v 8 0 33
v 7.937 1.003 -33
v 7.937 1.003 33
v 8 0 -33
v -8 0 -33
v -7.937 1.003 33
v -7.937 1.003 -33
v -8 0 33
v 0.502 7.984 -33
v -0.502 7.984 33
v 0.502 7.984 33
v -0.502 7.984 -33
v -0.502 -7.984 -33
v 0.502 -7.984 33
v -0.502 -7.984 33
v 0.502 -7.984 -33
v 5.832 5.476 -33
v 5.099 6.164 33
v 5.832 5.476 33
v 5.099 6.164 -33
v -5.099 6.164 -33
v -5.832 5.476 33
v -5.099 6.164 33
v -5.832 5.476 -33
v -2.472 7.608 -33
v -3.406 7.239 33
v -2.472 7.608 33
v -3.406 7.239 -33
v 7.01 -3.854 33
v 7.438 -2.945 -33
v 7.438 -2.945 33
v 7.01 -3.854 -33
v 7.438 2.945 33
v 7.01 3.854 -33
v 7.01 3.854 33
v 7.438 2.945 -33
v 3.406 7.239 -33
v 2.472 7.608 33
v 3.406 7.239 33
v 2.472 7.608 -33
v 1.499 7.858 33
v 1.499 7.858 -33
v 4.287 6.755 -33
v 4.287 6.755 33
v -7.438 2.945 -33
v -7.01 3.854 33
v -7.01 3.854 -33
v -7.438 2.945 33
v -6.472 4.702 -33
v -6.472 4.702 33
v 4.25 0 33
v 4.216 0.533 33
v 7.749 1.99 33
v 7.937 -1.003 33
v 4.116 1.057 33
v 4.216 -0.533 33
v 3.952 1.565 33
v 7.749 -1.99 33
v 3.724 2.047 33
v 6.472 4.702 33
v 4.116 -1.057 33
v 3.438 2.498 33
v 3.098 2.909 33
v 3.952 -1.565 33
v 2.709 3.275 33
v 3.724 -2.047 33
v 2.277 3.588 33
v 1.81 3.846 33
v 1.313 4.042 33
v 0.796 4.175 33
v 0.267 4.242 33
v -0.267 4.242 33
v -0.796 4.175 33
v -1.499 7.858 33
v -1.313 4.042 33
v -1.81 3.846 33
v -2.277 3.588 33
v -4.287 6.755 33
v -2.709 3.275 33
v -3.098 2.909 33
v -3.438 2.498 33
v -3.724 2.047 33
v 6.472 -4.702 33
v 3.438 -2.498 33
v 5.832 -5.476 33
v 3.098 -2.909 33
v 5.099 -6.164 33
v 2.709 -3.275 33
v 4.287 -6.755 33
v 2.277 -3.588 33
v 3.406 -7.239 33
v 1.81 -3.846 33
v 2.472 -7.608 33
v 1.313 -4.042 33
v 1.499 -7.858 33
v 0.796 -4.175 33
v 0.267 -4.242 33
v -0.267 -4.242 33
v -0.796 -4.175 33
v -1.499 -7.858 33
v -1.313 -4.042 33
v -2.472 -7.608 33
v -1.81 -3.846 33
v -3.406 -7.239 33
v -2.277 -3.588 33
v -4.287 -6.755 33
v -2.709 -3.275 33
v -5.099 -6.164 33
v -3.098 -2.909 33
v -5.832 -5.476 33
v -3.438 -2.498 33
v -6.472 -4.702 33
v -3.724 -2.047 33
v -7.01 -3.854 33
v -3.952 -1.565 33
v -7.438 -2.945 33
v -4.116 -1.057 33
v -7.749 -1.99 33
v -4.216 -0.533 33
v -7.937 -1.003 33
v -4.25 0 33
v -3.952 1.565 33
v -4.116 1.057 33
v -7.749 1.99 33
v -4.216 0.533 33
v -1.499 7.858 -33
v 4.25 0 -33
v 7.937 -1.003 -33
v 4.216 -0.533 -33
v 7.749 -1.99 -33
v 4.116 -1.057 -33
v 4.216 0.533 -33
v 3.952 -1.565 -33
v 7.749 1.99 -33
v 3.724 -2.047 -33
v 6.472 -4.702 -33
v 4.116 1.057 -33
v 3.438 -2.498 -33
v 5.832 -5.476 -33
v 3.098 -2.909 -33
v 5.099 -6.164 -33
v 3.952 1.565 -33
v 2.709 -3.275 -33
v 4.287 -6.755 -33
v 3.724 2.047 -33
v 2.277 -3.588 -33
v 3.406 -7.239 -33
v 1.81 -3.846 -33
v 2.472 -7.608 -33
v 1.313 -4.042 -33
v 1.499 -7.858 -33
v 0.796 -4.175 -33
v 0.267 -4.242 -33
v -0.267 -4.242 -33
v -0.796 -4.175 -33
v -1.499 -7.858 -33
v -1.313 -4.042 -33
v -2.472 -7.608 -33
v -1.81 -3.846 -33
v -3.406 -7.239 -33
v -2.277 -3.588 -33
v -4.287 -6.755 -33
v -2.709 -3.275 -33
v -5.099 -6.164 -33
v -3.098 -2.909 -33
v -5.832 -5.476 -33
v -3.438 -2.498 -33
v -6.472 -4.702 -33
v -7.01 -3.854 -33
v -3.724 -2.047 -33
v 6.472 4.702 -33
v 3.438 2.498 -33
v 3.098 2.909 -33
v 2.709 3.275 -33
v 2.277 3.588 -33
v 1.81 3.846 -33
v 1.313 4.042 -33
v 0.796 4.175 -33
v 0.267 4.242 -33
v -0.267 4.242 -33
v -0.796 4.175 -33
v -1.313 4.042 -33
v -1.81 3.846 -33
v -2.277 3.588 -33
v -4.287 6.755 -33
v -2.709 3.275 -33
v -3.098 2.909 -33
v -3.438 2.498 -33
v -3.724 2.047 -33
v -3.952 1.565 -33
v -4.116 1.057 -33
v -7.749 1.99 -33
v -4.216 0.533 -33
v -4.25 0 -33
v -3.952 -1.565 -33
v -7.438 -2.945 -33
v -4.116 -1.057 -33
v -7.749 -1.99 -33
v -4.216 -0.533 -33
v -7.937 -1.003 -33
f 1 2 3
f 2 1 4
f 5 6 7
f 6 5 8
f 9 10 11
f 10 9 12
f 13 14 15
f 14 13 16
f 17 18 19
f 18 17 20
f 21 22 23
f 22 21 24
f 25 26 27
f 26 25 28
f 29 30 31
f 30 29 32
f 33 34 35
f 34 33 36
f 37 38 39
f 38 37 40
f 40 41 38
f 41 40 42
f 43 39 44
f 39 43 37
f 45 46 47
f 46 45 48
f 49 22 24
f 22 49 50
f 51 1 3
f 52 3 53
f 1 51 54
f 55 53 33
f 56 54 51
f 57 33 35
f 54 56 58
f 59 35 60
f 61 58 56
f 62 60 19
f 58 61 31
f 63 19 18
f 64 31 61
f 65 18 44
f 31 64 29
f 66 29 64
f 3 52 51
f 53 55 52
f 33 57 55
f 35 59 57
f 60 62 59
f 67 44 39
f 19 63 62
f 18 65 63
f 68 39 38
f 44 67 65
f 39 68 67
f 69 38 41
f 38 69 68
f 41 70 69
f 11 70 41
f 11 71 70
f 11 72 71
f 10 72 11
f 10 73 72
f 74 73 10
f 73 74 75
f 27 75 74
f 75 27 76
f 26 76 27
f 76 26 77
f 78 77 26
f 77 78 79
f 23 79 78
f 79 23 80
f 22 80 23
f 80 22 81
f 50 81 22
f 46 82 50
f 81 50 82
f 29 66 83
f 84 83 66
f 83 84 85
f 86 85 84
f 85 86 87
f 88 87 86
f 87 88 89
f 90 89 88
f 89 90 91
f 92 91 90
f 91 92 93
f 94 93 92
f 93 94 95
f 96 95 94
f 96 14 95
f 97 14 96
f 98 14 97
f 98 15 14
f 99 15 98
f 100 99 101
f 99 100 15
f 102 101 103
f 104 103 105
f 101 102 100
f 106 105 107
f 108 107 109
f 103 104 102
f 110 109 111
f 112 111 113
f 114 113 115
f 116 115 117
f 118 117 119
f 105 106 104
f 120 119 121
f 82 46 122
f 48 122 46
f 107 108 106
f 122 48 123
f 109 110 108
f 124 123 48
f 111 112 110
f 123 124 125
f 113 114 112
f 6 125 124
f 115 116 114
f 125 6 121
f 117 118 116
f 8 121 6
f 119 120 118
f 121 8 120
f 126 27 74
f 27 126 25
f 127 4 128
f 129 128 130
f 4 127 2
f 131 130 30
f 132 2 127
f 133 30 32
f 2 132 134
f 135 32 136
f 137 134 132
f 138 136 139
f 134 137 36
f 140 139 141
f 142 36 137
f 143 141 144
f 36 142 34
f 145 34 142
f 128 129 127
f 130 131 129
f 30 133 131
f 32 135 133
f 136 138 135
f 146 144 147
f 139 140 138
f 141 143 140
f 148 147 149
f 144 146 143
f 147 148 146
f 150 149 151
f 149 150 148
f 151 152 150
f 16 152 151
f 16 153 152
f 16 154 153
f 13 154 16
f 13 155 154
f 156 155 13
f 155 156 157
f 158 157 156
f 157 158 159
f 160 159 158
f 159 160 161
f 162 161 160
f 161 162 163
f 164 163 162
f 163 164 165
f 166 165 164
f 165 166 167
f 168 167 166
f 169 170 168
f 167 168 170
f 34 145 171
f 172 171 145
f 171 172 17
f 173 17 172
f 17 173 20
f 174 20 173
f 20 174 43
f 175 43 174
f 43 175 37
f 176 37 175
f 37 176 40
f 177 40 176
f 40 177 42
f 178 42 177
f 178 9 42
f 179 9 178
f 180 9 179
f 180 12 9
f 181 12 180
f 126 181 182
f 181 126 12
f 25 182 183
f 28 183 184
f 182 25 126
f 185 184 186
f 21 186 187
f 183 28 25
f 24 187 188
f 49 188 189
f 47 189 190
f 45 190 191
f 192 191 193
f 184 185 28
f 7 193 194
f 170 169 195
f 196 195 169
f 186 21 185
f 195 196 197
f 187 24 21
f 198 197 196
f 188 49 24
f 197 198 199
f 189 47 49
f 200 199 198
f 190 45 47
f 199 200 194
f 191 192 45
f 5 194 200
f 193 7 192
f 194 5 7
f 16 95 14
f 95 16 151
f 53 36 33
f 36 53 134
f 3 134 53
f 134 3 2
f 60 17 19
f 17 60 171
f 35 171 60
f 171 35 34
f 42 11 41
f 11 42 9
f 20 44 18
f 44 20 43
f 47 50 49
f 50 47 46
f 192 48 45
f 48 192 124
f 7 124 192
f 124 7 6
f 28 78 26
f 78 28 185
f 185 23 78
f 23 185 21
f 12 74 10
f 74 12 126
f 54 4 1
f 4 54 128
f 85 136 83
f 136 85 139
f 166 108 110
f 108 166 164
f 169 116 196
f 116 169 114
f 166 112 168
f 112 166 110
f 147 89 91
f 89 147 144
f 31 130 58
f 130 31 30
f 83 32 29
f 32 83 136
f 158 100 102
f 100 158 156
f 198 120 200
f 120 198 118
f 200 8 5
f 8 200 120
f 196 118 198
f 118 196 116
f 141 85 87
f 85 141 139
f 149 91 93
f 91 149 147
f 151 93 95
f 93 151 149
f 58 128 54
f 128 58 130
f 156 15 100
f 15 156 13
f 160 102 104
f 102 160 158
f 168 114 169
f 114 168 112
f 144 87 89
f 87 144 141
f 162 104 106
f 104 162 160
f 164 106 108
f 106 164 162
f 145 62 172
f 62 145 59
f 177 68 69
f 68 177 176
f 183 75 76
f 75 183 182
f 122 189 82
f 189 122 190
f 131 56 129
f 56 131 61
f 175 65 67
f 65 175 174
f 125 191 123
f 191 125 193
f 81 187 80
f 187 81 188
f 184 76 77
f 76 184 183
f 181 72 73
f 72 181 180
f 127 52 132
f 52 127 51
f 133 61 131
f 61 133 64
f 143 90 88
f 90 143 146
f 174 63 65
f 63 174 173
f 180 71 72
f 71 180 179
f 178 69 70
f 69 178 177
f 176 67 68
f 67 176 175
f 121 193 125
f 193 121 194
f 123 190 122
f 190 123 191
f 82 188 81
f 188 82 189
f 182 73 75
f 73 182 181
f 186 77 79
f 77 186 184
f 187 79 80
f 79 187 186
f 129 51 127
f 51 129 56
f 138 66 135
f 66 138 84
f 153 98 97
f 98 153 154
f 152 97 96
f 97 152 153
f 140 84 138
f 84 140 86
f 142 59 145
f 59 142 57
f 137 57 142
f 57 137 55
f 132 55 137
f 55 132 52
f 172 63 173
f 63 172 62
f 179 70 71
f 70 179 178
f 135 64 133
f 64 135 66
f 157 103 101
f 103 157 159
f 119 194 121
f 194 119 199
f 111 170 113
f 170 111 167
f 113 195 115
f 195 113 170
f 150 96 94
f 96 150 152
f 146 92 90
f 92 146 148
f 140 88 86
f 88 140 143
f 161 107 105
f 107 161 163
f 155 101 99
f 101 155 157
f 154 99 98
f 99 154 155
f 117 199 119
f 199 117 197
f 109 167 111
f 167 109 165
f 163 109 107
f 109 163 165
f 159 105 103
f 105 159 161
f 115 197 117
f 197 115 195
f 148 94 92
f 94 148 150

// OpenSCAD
$fn = 50;


difference() {
	union() {
		translate(v = [0, 0, -33.0000000000]) {
			cylinder(h = 66, r = 8.0000000000);
		}
	}
	union() {
		translate(v = [0, 0, -100.0000000000]) {
			cylinder(h = 200, r = 4.2500000000);
		}
	}
}
